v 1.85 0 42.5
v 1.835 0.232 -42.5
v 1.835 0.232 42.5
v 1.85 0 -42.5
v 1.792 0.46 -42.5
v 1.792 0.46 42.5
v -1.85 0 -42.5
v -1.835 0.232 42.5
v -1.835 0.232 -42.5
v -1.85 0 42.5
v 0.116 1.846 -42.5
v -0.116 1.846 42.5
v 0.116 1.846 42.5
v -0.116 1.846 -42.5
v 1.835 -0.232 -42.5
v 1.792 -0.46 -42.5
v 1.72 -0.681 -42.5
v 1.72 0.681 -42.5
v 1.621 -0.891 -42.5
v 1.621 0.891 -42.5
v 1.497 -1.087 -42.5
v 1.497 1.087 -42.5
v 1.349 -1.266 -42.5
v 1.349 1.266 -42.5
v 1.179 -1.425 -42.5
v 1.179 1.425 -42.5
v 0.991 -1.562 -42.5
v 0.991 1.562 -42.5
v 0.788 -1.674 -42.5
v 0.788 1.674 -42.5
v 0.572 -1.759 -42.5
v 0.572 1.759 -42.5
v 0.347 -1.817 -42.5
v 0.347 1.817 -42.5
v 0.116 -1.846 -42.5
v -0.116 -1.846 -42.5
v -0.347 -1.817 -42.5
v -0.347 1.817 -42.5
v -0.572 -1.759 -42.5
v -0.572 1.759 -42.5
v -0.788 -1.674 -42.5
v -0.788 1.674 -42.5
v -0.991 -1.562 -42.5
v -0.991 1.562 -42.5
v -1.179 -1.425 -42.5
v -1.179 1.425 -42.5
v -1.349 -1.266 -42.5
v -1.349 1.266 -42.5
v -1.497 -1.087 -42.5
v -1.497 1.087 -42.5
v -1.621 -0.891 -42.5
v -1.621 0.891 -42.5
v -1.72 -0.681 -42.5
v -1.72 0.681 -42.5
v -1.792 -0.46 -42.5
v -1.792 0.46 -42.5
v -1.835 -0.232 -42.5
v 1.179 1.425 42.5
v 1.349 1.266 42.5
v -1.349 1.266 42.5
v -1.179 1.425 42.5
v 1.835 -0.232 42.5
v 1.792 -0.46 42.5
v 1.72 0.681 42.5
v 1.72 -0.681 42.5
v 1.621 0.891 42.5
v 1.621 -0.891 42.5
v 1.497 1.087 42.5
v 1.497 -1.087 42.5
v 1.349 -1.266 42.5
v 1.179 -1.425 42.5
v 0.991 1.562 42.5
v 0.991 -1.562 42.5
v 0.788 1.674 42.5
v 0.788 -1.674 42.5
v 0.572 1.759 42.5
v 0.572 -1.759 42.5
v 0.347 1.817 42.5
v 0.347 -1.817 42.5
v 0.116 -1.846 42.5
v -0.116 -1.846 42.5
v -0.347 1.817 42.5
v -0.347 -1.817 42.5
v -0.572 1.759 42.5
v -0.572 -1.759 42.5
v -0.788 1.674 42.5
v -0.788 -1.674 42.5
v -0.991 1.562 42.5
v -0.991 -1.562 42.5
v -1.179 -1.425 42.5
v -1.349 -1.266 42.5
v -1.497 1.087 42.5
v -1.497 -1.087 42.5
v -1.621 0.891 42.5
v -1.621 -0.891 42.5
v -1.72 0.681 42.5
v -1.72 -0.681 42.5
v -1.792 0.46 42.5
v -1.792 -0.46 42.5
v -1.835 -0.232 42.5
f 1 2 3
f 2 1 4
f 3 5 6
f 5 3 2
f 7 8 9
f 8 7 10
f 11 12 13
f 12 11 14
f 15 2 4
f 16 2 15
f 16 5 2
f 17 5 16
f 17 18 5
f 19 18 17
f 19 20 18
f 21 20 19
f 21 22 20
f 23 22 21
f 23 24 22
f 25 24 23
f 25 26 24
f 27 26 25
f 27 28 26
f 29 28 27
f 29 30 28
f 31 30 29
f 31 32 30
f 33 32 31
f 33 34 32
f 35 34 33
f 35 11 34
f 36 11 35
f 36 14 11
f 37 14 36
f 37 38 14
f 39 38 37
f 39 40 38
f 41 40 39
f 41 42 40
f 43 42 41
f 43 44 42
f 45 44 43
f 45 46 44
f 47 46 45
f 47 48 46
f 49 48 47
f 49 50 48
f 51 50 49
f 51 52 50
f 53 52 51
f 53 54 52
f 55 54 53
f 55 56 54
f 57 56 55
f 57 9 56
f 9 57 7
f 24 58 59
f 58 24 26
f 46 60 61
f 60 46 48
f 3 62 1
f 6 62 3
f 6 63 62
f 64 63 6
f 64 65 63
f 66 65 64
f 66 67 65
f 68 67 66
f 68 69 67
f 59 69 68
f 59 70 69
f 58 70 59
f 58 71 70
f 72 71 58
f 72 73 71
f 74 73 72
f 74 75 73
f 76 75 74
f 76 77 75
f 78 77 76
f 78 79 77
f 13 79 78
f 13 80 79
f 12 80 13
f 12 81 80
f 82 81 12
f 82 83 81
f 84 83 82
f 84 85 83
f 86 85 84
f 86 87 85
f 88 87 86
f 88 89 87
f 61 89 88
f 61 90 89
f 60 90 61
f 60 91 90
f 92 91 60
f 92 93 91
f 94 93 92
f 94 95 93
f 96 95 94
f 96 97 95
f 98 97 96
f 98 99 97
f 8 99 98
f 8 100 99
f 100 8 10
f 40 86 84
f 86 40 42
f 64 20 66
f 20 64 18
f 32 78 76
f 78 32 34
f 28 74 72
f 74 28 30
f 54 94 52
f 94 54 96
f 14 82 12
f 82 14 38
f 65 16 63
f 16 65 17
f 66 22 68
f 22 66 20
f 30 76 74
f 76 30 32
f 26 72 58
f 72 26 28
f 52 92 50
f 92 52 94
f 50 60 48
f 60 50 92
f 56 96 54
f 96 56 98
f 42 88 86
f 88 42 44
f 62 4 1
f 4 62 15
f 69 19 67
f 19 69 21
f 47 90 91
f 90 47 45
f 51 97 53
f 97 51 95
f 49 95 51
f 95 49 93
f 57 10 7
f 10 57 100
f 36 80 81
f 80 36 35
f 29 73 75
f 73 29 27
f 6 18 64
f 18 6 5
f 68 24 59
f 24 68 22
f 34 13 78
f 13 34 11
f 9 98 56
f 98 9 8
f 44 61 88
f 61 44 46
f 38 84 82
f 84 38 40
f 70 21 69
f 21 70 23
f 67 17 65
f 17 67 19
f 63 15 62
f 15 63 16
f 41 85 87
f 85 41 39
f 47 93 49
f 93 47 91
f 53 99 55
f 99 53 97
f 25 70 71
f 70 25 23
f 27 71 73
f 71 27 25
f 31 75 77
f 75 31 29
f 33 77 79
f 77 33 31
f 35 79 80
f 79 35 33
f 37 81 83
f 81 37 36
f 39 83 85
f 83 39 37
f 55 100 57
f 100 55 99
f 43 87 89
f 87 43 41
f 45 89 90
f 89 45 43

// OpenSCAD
$fn = 50;


difference() {
	union() {
		translate(v = [0, 0, -42.5000000000]) {
			cylinder(h = 85, r = 1.8500000000);
		}
	}
	union() {
		translate(v = [0, 0, -100.0000000000]) {
			cylinder(h = 200, r = 0);
		}
	}
}
